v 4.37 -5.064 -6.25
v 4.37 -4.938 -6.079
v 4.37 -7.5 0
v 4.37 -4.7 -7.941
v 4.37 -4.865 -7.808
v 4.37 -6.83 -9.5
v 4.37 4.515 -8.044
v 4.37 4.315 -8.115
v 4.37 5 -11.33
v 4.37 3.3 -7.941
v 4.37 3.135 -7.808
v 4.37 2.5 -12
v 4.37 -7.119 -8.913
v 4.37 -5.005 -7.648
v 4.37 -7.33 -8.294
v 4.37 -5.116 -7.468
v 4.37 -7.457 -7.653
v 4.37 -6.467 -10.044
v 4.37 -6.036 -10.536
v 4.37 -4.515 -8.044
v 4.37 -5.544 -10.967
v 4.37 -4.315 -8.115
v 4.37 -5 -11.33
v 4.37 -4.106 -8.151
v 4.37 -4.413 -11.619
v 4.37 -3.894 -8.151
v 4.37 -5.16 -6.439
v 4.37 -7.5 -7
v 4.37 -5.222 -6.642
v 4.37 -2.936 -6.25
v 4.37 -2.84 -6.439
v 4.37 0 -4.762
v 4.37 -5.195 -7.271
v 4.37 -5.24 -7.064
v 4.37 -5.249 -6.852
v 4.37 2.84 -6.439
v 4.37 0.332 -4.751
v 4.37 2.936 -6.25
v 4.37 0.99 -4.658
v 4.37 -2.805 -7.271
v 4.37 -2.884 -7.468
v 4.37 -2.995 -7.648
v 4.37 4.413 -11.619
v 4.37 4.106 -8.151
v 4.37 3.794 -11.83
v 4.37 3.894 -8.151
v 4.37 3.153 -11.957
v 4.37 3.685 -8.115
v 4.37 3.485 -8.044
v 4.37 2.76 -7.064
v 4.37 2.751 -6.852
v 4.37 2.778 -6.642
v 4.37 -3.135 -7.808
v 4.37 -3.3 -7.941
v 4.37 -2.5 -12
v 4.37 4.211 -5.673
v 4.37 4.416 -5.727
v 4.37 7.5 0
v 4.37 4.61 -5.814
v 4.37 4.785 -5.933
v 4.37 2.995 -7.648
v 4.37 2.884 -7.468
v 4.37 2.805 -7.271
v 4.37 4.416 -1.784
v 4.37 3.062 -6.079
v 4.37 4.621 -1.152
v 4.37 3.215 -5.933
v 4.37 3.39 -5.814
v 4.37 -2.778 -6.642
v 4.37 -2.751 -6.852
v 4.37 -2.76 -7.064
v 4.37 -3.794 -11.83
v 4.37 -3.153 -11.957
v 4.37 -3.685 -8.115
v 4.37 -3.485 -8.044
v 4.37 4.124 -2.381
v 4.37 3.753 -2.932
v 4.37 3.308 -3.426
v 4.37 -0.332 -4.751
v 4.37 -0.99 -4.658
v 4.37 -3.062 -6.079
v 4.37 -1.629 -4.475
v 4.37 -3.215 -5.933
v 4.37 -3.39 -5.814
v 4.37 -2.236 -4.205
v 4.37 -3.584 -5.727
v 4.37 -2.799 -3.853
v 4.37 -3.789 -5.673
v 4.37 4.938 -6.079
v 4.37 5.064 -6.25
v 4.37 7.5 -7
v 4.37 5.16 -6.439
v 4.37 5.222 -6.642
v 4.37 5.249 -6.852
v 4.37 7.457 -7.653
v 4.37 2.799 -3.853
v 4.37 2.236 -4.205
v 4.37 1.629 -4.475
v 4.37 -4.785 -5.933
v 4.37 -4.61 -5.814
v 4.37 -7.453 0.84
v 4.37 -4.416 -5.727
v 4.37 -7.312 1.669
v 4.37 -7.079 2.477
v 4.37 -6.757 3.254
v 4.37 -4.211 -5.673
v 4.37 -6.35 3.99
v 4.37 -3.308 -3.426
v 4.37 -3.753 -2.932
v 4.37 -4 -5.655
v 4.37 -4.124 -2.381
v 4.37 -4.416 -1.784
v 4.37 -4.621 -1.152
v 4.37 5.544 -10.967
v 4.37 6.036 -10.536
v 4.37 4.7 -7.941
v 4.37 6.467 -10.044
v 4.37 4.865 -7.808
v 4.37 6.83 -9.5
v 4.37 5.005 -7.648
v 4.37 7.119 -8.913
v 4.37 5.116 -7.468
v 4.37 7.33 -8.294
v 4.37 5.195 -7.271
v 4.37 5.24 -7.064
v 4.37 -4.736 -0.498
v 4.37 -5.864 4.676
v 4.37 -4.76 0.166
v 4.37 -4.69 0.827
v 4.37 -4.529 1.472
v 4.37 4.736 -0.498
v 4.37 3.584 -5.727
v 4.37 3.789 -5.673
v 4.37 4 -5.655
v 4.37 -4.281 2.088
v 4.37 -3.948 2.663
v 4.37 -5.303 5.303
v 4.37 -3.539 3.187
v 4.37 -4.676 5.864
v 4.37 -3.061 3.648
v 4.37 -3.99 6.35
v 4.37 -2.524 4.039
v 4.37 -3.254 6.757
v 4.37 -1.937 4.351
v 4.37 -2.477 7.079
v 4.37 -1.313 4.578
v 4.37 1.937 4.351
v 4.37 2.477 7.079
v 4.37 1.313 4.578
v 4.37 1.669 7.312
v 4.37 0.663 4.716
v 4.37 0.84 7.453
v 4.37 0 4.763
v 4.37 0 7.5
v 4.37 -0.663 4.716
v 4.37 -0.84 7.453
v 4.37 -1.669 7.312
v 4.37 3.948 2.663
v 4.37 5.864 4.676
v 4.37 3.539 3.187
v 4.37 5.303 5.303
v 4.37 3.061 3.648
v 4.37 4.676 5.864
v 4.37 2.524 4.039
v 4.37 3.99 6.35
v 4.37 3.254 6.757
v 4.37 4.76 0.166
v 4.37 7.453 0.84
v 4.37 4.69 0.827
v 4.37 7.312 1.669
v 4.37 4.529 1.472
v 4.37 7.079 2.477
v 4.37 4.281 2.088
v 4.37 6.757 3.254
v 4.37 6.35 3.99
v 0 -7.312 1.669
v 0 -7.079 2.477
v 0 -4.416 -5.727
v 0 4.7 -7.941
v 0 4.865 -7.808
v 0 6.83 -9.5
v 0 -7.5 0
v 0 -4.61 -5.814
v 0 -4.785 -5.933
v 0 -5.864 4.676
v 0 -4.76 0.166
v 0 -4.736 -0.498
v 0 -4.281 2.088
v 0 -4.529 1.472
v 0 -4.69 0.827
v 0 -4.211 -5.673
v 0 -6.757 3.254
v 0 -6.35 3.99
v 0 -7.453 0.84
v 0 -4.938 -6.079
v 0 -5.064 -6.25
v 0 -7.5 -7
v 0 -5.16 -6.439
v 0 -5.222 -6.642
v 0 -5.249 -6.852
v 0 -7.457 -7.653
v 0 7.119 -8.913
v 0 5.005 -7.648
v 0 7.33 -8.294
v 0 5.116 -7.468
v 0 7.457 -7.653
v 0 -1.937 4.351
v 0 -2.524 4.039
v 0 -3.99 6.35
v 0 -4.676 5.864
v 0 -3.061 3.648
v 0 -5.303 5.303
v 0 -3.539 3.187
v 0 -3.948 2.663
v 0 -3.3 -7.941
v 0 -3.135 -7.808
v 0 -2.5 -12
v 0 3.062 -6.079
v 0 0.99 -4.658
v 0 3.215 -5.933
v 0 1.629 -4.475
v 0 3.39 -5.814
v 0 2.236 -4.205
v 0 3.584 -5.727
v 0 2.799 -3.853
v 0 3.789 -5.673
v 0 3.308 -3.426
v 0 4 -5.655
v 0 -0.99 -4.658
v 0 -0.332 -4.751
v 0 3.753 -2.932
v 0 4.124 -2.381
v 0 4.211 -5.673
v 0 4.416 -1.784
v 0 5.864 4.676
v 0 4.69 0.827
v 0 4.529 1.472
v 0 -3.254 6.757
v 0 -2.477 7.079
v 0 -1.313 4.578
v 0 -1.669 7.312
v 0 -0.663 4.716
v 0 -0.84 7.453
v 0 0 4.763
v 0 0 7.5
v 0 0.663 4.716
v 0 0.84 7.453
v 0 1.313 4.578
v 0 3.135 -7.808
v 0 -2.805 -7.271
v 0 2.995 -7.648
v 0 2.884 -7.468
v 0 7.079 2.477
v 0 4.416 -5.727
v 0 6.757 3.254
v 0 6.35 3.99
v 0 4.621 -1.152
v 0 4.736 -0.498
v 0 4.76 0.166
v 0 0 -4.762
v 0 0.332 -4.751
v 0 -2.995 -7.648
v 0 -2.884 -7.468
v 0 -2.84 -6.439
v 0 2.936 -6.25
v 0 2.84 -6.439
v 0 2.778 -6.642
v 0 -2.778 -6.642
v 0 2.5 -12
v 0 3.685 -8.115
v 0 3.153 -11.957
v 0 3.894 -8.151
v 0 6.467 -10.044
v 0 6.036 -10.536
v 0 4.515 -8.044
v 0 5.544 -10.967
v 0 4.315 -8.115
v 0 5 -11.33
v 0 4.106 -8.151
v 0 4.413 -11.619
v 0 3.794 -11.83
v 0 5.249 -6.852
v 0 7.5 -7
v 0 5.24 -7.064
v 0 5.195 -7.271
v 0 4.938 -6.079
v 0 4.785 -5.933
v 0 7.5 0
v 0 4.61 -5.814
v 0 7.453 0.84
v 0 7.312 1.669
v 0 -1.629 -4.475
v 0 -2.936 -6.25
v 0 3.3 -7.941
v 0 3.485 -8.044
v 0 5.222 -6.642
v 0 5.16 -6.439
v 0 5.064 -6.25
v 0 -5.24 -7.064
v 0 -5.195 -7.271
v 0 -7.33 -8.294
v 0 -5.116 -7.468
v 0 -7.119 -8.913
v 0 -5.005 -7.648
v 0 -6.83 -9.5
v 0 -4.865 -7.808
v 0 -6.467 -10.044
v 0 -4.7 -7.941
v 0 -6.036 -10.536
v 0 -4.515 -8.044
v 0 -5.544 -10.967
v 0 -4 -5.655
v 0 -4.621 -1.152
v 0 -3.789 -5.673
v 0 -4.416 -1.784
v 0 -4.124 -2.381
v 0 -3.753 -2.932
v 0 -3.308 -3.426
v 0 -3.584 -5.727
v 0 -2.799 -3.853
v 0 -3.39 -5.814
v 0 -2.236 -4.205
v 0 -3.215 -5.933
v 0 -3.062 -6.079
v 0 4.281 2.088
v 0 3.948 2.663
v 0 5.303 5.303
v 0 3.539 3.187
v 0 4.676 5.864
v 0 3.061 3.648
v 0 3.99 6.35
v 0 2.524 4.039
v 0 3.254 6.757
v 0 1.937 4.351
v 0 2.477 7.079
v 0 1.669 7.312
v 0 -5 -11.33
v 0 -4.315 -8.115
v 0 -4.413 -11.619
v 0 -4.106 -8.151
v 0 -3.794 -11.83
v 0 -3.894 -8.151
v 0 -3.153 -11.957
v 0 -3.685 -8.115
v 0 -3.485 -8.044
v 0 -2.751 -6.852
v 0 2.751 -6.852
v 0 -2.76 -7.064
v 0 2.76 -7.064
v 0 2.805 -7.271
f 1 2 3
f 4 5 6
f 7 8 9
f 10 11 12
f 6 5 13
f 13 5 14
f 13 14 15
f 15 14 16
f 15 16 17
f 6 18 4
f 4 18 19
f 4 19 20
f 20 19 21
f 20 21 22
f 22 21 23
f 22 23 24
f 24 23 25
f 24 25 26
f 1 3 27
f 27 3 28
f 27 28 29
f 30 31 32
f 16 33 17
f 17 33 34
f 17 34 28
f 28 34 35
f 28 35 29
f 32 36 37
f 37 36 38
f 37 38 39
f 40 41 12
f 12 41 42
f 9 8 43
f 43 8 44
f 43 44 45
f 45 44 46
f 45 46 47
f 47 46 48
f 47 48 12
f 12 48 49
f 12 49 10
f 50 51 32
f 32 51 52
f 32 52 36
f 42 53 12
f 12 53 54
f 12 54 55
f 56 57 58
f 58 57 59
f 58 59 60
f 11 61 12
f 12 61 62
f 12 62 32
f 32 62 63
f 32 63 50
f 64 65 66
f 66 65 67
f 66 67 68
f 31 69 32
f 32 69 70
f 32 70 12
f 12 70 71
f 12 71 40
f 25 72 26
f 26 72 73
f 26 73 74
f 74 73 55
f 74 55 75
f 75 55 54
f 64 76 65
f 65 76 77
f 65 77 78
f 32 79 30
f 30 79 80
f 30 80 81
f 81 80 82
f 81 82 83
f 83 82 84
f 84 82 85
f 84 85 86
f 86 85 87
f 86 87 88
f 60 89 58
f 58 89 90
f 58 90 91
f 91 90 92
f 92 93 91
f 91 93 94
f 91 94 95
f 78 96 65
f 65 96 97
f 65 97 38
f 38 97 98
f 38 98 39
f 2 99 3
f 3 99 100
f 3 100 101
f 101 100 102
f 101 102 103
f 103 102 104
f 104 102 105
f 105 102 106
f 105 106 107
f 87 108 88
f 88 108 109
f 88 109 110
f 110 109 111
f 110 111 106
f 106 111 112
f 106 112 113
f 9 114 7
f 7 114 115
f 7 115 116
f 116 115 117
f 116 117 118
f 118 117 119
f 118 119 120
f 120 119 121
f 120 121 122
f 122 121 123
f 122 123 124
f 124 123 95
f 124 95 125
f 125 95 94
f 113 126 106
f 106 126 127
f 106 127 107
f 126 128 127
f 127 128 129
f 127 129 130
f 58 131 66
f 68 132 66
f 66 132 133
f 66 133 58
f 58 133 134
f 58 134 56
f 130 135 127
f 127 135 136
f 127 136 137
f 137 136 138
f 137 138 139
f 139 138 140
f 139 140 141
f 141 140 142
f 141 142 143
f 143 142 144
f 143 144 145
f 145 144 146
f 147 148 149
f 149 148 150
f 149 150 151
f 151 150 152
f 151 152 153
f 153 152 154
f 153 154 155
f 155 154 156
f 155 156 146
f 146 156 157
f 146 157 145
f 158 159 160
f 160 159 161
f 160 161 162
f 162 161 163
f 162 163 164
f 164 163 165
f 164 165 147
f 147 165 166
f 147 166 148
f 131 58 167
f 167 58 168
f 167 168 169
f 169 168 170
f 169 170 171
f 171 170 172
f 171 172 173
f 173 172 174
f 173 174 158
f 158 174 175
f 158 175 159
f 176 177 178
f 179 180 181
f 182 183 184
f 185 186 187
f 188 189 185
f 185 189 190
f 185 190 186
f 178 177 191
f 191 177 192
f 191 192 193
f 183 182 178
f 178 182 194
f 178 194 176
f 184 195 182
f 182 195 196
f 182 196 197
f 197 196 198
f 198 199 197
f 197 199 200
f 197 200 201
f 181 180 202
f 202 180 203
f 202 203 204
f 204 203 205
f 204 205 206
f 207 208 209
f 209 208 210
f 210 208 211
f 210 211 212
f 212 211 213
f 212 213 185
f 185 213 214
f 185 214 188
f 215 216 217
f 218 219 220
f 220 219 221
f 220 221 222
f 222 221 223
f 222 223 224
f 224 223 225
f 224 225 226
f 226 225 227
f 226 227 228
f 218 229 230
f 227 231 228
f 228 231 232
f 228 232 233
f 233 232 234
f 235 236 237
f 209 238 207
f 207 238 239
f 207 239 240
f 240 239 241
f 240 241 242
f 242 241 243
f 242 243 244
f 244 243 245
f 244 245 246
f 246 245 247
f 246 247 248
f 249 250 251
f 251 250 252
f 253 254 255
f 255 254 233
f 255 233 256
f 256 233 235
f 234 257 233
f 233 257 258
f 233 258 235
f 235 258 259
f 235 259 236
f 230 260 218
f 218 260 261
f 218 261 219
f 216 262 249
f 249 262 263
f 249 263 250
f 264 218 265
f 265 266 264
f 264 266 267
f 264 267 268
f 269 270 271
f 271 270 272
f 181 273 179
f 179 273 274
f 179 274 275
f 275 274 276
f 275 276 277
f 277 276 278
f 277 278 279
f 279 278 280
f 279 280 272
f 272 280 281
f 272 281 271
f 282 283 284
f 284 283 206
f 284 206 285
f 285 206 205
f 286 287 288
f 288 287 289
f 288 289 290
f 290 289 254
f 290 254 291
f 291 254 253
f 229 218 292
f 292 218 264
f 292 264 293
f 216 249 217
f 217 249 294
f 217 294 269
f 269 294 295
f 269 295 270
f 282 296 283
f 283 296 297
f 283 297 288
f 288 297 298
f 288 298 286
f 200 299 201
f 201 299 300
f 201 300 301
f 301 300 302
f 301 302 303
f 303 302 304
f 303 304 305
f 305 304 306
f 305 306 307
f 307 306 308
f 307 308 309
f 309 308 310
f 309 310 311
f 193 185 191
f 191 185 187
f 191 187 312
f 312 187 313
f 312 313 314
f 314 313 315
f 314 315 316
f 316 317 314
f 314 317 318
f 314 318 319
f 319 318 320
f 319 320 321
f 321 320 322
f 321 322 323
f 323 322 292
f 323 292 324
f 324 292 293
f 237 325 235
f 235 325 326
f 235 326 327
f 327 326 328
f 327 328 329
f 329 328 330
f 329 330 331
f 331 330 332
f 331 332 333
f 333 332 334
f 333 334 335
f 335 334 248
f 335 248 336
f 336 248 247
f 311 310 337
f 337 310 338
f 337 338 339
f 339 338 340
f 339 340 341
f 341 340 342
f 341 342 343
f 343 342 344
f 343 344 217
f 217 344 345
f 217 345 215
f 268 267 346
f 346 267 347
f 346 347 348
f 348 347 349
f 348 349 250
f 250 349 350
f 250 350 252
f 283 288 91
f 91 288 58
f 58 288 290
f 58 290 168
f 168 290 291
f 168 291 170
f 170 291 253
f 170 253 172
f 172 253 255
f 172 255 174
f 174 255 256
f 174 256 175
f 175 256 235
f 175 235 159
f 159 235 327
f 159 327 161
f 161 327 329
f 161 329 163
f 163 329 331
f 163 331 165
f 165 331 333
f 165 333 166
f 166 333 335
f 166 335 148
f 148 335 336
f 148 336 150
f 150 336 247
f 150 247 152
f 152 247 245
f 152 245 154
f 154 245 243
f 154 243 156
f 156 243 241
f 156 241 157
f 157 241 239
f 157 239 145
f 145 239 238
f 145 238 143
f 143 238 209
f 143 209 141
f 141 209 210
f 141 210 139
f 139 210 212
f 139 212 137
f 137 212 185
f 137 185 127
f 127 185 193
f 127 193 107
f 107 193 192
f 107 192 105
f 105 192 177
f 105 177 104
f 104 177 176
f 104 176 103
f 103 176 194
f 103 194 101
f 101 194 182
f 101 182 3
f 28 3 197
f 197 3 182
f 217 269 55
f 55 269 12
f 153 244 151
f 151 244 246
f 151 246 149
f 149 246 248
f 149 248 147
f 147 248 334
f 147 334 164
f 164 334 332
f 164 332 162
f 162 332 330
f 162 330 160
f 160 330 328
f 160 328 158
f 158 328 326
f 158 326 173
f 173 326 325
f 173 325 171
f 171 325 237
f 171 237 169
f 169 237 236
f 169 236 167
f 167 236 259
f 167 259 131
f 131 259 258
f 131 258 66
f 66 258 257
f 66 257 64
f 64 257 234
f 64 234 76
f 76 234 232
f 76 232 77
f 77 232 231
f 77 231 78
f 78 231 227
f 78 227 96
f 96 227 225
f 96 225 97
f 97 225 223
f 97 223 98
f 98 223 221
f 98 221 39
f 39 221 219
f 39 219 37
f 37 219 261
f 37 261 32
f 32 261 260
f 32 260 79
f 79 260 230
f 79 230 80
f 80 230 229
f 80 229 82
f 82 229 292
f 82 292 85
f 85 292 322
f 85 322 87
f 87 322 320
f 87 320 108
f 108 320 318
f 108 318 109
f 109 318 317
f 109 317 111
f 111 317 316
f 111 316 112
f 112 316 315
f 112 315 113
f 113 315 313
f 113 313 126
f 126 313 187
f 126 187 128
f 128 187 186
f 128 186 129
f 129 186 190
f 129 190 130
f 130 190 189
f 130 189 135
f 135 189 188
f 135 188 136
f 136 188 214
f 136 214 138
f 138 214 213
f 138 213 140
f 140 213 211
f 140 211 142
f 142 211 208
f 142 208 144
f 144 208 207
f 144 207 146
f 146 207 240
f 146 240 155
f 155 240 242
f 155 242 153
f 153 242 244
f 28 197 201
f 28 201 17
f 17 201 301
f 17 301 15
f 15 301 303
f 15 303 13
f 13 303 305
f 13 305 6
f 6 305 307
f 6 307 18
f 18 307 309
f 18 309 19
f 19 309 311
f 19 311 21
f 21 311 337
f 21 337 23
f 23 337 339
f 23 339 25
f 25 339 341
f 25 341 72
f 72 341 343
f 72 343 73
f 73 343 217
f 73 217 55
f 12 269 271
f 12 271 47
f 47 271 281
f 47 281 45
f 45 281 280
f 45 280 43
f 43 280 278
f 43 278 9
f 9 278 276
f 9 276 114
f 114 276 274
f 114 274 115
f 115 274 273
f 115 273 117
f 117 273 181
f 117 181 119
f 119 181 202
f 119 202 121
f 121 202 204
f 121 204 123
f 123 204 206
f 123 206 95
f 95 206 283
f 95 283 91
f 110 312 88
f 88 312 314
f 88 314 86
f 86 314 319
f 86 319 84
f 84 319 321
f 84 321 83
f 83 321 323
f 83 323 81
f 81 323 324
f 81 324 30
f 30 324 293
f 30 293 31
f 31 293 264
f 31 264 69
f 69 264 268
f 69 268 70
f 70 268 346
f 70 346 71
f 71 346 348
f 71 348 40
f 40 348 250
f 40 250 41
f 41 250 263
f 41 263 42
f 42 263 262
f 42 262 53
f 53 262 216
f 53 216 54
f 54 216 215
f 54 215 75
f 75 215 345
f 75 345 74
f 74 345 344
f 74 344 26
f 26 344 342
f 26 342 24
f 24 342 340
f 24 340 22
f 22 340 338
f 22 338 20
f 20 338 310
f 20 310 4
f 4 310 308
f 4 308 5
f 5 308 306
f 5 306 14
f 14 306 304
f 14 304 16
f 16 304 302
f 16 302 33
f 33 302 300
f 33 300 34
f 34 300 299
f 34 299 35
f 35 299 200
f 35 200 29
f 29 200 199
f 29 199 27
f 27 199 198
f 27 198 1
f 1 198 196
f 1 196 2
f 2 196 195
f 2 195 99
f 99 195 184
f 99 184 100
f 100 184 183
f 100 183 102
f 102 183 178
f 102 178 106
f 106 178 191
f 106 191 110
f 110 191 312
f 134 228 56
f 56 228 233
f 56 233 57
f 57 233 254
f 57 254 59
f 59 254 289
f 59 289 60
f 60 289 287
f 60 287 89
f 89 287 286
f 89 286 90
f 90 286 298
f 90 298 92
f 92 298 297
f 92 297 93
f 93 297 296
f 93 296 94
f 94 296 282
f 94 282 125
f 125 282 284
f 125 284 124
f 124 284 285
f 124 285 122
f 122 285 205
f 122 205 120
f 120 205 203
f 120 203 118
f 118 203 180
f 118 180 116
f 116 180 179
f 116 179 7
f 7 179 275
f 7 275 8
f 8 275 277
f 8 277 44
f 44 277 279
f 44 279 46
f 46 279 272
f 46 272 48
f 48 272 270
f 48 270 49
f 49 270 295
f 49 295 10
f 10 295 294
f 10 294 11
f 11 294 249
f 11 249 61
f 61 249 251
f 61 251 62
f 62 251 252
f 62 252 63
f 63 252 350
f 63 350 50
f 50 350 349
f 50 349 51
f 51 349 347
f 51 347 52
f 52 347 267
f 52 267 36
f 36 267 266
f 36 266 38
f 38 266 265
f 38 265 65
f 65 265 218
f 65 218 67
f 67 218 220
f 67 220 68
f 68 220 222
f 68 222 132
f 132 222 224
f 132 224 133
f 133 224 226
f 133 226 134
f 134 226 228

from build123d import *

# Parameters (mm, degrees)
SKETCH1_R             = 4.7625
BOSS_EXTRUDE1_DEPTH   = 4.37
FILLET1_R             = 5
M3X0_5_TAPPED_HOLE1_D = 2.5


with BuildPart() as part:
    # Sketch1 → Boss-Extrude1 (new body)
    with BuildSketch(Plane(origin=(0, 0, 0), x_dir=(0, 0, -1), z_dir=(1, 0, 0))):
        with BuildLine():
            Line((0, 7.5), (12, 7.5))
            Line((12, 7.5), (12, -7.5))
            Line((12, -7.5), (0, -7.5))
            ThreePointArc((0, -7.5), (-7.5, 0), (0, 7.5))
        make_face()
        Circle(SKETCH1_R, mode=Mode.SUBTRACT)
    extrude(amount=BOSS_EXTRUDE1_DEPTH)

    # Fillet1
    fillet1_edges = [part.edges().sort_by_distance(p)[0] for p in [
        (2.185, -7.5, -12),
        (2.185, 7.5, -12),
    ]]
    fillet(fillet1_edges, radius=FILLET1_R)

    # M3x0.5 Tapped Hole1 (through all)
    with Locations(Plane.ZY):
        with Locations((-6.905099565, 4), (-6.905099565, -4)):
            Hole(M3X0_5_TAPPED_HOLE1_D / 2)


solid = part.part
